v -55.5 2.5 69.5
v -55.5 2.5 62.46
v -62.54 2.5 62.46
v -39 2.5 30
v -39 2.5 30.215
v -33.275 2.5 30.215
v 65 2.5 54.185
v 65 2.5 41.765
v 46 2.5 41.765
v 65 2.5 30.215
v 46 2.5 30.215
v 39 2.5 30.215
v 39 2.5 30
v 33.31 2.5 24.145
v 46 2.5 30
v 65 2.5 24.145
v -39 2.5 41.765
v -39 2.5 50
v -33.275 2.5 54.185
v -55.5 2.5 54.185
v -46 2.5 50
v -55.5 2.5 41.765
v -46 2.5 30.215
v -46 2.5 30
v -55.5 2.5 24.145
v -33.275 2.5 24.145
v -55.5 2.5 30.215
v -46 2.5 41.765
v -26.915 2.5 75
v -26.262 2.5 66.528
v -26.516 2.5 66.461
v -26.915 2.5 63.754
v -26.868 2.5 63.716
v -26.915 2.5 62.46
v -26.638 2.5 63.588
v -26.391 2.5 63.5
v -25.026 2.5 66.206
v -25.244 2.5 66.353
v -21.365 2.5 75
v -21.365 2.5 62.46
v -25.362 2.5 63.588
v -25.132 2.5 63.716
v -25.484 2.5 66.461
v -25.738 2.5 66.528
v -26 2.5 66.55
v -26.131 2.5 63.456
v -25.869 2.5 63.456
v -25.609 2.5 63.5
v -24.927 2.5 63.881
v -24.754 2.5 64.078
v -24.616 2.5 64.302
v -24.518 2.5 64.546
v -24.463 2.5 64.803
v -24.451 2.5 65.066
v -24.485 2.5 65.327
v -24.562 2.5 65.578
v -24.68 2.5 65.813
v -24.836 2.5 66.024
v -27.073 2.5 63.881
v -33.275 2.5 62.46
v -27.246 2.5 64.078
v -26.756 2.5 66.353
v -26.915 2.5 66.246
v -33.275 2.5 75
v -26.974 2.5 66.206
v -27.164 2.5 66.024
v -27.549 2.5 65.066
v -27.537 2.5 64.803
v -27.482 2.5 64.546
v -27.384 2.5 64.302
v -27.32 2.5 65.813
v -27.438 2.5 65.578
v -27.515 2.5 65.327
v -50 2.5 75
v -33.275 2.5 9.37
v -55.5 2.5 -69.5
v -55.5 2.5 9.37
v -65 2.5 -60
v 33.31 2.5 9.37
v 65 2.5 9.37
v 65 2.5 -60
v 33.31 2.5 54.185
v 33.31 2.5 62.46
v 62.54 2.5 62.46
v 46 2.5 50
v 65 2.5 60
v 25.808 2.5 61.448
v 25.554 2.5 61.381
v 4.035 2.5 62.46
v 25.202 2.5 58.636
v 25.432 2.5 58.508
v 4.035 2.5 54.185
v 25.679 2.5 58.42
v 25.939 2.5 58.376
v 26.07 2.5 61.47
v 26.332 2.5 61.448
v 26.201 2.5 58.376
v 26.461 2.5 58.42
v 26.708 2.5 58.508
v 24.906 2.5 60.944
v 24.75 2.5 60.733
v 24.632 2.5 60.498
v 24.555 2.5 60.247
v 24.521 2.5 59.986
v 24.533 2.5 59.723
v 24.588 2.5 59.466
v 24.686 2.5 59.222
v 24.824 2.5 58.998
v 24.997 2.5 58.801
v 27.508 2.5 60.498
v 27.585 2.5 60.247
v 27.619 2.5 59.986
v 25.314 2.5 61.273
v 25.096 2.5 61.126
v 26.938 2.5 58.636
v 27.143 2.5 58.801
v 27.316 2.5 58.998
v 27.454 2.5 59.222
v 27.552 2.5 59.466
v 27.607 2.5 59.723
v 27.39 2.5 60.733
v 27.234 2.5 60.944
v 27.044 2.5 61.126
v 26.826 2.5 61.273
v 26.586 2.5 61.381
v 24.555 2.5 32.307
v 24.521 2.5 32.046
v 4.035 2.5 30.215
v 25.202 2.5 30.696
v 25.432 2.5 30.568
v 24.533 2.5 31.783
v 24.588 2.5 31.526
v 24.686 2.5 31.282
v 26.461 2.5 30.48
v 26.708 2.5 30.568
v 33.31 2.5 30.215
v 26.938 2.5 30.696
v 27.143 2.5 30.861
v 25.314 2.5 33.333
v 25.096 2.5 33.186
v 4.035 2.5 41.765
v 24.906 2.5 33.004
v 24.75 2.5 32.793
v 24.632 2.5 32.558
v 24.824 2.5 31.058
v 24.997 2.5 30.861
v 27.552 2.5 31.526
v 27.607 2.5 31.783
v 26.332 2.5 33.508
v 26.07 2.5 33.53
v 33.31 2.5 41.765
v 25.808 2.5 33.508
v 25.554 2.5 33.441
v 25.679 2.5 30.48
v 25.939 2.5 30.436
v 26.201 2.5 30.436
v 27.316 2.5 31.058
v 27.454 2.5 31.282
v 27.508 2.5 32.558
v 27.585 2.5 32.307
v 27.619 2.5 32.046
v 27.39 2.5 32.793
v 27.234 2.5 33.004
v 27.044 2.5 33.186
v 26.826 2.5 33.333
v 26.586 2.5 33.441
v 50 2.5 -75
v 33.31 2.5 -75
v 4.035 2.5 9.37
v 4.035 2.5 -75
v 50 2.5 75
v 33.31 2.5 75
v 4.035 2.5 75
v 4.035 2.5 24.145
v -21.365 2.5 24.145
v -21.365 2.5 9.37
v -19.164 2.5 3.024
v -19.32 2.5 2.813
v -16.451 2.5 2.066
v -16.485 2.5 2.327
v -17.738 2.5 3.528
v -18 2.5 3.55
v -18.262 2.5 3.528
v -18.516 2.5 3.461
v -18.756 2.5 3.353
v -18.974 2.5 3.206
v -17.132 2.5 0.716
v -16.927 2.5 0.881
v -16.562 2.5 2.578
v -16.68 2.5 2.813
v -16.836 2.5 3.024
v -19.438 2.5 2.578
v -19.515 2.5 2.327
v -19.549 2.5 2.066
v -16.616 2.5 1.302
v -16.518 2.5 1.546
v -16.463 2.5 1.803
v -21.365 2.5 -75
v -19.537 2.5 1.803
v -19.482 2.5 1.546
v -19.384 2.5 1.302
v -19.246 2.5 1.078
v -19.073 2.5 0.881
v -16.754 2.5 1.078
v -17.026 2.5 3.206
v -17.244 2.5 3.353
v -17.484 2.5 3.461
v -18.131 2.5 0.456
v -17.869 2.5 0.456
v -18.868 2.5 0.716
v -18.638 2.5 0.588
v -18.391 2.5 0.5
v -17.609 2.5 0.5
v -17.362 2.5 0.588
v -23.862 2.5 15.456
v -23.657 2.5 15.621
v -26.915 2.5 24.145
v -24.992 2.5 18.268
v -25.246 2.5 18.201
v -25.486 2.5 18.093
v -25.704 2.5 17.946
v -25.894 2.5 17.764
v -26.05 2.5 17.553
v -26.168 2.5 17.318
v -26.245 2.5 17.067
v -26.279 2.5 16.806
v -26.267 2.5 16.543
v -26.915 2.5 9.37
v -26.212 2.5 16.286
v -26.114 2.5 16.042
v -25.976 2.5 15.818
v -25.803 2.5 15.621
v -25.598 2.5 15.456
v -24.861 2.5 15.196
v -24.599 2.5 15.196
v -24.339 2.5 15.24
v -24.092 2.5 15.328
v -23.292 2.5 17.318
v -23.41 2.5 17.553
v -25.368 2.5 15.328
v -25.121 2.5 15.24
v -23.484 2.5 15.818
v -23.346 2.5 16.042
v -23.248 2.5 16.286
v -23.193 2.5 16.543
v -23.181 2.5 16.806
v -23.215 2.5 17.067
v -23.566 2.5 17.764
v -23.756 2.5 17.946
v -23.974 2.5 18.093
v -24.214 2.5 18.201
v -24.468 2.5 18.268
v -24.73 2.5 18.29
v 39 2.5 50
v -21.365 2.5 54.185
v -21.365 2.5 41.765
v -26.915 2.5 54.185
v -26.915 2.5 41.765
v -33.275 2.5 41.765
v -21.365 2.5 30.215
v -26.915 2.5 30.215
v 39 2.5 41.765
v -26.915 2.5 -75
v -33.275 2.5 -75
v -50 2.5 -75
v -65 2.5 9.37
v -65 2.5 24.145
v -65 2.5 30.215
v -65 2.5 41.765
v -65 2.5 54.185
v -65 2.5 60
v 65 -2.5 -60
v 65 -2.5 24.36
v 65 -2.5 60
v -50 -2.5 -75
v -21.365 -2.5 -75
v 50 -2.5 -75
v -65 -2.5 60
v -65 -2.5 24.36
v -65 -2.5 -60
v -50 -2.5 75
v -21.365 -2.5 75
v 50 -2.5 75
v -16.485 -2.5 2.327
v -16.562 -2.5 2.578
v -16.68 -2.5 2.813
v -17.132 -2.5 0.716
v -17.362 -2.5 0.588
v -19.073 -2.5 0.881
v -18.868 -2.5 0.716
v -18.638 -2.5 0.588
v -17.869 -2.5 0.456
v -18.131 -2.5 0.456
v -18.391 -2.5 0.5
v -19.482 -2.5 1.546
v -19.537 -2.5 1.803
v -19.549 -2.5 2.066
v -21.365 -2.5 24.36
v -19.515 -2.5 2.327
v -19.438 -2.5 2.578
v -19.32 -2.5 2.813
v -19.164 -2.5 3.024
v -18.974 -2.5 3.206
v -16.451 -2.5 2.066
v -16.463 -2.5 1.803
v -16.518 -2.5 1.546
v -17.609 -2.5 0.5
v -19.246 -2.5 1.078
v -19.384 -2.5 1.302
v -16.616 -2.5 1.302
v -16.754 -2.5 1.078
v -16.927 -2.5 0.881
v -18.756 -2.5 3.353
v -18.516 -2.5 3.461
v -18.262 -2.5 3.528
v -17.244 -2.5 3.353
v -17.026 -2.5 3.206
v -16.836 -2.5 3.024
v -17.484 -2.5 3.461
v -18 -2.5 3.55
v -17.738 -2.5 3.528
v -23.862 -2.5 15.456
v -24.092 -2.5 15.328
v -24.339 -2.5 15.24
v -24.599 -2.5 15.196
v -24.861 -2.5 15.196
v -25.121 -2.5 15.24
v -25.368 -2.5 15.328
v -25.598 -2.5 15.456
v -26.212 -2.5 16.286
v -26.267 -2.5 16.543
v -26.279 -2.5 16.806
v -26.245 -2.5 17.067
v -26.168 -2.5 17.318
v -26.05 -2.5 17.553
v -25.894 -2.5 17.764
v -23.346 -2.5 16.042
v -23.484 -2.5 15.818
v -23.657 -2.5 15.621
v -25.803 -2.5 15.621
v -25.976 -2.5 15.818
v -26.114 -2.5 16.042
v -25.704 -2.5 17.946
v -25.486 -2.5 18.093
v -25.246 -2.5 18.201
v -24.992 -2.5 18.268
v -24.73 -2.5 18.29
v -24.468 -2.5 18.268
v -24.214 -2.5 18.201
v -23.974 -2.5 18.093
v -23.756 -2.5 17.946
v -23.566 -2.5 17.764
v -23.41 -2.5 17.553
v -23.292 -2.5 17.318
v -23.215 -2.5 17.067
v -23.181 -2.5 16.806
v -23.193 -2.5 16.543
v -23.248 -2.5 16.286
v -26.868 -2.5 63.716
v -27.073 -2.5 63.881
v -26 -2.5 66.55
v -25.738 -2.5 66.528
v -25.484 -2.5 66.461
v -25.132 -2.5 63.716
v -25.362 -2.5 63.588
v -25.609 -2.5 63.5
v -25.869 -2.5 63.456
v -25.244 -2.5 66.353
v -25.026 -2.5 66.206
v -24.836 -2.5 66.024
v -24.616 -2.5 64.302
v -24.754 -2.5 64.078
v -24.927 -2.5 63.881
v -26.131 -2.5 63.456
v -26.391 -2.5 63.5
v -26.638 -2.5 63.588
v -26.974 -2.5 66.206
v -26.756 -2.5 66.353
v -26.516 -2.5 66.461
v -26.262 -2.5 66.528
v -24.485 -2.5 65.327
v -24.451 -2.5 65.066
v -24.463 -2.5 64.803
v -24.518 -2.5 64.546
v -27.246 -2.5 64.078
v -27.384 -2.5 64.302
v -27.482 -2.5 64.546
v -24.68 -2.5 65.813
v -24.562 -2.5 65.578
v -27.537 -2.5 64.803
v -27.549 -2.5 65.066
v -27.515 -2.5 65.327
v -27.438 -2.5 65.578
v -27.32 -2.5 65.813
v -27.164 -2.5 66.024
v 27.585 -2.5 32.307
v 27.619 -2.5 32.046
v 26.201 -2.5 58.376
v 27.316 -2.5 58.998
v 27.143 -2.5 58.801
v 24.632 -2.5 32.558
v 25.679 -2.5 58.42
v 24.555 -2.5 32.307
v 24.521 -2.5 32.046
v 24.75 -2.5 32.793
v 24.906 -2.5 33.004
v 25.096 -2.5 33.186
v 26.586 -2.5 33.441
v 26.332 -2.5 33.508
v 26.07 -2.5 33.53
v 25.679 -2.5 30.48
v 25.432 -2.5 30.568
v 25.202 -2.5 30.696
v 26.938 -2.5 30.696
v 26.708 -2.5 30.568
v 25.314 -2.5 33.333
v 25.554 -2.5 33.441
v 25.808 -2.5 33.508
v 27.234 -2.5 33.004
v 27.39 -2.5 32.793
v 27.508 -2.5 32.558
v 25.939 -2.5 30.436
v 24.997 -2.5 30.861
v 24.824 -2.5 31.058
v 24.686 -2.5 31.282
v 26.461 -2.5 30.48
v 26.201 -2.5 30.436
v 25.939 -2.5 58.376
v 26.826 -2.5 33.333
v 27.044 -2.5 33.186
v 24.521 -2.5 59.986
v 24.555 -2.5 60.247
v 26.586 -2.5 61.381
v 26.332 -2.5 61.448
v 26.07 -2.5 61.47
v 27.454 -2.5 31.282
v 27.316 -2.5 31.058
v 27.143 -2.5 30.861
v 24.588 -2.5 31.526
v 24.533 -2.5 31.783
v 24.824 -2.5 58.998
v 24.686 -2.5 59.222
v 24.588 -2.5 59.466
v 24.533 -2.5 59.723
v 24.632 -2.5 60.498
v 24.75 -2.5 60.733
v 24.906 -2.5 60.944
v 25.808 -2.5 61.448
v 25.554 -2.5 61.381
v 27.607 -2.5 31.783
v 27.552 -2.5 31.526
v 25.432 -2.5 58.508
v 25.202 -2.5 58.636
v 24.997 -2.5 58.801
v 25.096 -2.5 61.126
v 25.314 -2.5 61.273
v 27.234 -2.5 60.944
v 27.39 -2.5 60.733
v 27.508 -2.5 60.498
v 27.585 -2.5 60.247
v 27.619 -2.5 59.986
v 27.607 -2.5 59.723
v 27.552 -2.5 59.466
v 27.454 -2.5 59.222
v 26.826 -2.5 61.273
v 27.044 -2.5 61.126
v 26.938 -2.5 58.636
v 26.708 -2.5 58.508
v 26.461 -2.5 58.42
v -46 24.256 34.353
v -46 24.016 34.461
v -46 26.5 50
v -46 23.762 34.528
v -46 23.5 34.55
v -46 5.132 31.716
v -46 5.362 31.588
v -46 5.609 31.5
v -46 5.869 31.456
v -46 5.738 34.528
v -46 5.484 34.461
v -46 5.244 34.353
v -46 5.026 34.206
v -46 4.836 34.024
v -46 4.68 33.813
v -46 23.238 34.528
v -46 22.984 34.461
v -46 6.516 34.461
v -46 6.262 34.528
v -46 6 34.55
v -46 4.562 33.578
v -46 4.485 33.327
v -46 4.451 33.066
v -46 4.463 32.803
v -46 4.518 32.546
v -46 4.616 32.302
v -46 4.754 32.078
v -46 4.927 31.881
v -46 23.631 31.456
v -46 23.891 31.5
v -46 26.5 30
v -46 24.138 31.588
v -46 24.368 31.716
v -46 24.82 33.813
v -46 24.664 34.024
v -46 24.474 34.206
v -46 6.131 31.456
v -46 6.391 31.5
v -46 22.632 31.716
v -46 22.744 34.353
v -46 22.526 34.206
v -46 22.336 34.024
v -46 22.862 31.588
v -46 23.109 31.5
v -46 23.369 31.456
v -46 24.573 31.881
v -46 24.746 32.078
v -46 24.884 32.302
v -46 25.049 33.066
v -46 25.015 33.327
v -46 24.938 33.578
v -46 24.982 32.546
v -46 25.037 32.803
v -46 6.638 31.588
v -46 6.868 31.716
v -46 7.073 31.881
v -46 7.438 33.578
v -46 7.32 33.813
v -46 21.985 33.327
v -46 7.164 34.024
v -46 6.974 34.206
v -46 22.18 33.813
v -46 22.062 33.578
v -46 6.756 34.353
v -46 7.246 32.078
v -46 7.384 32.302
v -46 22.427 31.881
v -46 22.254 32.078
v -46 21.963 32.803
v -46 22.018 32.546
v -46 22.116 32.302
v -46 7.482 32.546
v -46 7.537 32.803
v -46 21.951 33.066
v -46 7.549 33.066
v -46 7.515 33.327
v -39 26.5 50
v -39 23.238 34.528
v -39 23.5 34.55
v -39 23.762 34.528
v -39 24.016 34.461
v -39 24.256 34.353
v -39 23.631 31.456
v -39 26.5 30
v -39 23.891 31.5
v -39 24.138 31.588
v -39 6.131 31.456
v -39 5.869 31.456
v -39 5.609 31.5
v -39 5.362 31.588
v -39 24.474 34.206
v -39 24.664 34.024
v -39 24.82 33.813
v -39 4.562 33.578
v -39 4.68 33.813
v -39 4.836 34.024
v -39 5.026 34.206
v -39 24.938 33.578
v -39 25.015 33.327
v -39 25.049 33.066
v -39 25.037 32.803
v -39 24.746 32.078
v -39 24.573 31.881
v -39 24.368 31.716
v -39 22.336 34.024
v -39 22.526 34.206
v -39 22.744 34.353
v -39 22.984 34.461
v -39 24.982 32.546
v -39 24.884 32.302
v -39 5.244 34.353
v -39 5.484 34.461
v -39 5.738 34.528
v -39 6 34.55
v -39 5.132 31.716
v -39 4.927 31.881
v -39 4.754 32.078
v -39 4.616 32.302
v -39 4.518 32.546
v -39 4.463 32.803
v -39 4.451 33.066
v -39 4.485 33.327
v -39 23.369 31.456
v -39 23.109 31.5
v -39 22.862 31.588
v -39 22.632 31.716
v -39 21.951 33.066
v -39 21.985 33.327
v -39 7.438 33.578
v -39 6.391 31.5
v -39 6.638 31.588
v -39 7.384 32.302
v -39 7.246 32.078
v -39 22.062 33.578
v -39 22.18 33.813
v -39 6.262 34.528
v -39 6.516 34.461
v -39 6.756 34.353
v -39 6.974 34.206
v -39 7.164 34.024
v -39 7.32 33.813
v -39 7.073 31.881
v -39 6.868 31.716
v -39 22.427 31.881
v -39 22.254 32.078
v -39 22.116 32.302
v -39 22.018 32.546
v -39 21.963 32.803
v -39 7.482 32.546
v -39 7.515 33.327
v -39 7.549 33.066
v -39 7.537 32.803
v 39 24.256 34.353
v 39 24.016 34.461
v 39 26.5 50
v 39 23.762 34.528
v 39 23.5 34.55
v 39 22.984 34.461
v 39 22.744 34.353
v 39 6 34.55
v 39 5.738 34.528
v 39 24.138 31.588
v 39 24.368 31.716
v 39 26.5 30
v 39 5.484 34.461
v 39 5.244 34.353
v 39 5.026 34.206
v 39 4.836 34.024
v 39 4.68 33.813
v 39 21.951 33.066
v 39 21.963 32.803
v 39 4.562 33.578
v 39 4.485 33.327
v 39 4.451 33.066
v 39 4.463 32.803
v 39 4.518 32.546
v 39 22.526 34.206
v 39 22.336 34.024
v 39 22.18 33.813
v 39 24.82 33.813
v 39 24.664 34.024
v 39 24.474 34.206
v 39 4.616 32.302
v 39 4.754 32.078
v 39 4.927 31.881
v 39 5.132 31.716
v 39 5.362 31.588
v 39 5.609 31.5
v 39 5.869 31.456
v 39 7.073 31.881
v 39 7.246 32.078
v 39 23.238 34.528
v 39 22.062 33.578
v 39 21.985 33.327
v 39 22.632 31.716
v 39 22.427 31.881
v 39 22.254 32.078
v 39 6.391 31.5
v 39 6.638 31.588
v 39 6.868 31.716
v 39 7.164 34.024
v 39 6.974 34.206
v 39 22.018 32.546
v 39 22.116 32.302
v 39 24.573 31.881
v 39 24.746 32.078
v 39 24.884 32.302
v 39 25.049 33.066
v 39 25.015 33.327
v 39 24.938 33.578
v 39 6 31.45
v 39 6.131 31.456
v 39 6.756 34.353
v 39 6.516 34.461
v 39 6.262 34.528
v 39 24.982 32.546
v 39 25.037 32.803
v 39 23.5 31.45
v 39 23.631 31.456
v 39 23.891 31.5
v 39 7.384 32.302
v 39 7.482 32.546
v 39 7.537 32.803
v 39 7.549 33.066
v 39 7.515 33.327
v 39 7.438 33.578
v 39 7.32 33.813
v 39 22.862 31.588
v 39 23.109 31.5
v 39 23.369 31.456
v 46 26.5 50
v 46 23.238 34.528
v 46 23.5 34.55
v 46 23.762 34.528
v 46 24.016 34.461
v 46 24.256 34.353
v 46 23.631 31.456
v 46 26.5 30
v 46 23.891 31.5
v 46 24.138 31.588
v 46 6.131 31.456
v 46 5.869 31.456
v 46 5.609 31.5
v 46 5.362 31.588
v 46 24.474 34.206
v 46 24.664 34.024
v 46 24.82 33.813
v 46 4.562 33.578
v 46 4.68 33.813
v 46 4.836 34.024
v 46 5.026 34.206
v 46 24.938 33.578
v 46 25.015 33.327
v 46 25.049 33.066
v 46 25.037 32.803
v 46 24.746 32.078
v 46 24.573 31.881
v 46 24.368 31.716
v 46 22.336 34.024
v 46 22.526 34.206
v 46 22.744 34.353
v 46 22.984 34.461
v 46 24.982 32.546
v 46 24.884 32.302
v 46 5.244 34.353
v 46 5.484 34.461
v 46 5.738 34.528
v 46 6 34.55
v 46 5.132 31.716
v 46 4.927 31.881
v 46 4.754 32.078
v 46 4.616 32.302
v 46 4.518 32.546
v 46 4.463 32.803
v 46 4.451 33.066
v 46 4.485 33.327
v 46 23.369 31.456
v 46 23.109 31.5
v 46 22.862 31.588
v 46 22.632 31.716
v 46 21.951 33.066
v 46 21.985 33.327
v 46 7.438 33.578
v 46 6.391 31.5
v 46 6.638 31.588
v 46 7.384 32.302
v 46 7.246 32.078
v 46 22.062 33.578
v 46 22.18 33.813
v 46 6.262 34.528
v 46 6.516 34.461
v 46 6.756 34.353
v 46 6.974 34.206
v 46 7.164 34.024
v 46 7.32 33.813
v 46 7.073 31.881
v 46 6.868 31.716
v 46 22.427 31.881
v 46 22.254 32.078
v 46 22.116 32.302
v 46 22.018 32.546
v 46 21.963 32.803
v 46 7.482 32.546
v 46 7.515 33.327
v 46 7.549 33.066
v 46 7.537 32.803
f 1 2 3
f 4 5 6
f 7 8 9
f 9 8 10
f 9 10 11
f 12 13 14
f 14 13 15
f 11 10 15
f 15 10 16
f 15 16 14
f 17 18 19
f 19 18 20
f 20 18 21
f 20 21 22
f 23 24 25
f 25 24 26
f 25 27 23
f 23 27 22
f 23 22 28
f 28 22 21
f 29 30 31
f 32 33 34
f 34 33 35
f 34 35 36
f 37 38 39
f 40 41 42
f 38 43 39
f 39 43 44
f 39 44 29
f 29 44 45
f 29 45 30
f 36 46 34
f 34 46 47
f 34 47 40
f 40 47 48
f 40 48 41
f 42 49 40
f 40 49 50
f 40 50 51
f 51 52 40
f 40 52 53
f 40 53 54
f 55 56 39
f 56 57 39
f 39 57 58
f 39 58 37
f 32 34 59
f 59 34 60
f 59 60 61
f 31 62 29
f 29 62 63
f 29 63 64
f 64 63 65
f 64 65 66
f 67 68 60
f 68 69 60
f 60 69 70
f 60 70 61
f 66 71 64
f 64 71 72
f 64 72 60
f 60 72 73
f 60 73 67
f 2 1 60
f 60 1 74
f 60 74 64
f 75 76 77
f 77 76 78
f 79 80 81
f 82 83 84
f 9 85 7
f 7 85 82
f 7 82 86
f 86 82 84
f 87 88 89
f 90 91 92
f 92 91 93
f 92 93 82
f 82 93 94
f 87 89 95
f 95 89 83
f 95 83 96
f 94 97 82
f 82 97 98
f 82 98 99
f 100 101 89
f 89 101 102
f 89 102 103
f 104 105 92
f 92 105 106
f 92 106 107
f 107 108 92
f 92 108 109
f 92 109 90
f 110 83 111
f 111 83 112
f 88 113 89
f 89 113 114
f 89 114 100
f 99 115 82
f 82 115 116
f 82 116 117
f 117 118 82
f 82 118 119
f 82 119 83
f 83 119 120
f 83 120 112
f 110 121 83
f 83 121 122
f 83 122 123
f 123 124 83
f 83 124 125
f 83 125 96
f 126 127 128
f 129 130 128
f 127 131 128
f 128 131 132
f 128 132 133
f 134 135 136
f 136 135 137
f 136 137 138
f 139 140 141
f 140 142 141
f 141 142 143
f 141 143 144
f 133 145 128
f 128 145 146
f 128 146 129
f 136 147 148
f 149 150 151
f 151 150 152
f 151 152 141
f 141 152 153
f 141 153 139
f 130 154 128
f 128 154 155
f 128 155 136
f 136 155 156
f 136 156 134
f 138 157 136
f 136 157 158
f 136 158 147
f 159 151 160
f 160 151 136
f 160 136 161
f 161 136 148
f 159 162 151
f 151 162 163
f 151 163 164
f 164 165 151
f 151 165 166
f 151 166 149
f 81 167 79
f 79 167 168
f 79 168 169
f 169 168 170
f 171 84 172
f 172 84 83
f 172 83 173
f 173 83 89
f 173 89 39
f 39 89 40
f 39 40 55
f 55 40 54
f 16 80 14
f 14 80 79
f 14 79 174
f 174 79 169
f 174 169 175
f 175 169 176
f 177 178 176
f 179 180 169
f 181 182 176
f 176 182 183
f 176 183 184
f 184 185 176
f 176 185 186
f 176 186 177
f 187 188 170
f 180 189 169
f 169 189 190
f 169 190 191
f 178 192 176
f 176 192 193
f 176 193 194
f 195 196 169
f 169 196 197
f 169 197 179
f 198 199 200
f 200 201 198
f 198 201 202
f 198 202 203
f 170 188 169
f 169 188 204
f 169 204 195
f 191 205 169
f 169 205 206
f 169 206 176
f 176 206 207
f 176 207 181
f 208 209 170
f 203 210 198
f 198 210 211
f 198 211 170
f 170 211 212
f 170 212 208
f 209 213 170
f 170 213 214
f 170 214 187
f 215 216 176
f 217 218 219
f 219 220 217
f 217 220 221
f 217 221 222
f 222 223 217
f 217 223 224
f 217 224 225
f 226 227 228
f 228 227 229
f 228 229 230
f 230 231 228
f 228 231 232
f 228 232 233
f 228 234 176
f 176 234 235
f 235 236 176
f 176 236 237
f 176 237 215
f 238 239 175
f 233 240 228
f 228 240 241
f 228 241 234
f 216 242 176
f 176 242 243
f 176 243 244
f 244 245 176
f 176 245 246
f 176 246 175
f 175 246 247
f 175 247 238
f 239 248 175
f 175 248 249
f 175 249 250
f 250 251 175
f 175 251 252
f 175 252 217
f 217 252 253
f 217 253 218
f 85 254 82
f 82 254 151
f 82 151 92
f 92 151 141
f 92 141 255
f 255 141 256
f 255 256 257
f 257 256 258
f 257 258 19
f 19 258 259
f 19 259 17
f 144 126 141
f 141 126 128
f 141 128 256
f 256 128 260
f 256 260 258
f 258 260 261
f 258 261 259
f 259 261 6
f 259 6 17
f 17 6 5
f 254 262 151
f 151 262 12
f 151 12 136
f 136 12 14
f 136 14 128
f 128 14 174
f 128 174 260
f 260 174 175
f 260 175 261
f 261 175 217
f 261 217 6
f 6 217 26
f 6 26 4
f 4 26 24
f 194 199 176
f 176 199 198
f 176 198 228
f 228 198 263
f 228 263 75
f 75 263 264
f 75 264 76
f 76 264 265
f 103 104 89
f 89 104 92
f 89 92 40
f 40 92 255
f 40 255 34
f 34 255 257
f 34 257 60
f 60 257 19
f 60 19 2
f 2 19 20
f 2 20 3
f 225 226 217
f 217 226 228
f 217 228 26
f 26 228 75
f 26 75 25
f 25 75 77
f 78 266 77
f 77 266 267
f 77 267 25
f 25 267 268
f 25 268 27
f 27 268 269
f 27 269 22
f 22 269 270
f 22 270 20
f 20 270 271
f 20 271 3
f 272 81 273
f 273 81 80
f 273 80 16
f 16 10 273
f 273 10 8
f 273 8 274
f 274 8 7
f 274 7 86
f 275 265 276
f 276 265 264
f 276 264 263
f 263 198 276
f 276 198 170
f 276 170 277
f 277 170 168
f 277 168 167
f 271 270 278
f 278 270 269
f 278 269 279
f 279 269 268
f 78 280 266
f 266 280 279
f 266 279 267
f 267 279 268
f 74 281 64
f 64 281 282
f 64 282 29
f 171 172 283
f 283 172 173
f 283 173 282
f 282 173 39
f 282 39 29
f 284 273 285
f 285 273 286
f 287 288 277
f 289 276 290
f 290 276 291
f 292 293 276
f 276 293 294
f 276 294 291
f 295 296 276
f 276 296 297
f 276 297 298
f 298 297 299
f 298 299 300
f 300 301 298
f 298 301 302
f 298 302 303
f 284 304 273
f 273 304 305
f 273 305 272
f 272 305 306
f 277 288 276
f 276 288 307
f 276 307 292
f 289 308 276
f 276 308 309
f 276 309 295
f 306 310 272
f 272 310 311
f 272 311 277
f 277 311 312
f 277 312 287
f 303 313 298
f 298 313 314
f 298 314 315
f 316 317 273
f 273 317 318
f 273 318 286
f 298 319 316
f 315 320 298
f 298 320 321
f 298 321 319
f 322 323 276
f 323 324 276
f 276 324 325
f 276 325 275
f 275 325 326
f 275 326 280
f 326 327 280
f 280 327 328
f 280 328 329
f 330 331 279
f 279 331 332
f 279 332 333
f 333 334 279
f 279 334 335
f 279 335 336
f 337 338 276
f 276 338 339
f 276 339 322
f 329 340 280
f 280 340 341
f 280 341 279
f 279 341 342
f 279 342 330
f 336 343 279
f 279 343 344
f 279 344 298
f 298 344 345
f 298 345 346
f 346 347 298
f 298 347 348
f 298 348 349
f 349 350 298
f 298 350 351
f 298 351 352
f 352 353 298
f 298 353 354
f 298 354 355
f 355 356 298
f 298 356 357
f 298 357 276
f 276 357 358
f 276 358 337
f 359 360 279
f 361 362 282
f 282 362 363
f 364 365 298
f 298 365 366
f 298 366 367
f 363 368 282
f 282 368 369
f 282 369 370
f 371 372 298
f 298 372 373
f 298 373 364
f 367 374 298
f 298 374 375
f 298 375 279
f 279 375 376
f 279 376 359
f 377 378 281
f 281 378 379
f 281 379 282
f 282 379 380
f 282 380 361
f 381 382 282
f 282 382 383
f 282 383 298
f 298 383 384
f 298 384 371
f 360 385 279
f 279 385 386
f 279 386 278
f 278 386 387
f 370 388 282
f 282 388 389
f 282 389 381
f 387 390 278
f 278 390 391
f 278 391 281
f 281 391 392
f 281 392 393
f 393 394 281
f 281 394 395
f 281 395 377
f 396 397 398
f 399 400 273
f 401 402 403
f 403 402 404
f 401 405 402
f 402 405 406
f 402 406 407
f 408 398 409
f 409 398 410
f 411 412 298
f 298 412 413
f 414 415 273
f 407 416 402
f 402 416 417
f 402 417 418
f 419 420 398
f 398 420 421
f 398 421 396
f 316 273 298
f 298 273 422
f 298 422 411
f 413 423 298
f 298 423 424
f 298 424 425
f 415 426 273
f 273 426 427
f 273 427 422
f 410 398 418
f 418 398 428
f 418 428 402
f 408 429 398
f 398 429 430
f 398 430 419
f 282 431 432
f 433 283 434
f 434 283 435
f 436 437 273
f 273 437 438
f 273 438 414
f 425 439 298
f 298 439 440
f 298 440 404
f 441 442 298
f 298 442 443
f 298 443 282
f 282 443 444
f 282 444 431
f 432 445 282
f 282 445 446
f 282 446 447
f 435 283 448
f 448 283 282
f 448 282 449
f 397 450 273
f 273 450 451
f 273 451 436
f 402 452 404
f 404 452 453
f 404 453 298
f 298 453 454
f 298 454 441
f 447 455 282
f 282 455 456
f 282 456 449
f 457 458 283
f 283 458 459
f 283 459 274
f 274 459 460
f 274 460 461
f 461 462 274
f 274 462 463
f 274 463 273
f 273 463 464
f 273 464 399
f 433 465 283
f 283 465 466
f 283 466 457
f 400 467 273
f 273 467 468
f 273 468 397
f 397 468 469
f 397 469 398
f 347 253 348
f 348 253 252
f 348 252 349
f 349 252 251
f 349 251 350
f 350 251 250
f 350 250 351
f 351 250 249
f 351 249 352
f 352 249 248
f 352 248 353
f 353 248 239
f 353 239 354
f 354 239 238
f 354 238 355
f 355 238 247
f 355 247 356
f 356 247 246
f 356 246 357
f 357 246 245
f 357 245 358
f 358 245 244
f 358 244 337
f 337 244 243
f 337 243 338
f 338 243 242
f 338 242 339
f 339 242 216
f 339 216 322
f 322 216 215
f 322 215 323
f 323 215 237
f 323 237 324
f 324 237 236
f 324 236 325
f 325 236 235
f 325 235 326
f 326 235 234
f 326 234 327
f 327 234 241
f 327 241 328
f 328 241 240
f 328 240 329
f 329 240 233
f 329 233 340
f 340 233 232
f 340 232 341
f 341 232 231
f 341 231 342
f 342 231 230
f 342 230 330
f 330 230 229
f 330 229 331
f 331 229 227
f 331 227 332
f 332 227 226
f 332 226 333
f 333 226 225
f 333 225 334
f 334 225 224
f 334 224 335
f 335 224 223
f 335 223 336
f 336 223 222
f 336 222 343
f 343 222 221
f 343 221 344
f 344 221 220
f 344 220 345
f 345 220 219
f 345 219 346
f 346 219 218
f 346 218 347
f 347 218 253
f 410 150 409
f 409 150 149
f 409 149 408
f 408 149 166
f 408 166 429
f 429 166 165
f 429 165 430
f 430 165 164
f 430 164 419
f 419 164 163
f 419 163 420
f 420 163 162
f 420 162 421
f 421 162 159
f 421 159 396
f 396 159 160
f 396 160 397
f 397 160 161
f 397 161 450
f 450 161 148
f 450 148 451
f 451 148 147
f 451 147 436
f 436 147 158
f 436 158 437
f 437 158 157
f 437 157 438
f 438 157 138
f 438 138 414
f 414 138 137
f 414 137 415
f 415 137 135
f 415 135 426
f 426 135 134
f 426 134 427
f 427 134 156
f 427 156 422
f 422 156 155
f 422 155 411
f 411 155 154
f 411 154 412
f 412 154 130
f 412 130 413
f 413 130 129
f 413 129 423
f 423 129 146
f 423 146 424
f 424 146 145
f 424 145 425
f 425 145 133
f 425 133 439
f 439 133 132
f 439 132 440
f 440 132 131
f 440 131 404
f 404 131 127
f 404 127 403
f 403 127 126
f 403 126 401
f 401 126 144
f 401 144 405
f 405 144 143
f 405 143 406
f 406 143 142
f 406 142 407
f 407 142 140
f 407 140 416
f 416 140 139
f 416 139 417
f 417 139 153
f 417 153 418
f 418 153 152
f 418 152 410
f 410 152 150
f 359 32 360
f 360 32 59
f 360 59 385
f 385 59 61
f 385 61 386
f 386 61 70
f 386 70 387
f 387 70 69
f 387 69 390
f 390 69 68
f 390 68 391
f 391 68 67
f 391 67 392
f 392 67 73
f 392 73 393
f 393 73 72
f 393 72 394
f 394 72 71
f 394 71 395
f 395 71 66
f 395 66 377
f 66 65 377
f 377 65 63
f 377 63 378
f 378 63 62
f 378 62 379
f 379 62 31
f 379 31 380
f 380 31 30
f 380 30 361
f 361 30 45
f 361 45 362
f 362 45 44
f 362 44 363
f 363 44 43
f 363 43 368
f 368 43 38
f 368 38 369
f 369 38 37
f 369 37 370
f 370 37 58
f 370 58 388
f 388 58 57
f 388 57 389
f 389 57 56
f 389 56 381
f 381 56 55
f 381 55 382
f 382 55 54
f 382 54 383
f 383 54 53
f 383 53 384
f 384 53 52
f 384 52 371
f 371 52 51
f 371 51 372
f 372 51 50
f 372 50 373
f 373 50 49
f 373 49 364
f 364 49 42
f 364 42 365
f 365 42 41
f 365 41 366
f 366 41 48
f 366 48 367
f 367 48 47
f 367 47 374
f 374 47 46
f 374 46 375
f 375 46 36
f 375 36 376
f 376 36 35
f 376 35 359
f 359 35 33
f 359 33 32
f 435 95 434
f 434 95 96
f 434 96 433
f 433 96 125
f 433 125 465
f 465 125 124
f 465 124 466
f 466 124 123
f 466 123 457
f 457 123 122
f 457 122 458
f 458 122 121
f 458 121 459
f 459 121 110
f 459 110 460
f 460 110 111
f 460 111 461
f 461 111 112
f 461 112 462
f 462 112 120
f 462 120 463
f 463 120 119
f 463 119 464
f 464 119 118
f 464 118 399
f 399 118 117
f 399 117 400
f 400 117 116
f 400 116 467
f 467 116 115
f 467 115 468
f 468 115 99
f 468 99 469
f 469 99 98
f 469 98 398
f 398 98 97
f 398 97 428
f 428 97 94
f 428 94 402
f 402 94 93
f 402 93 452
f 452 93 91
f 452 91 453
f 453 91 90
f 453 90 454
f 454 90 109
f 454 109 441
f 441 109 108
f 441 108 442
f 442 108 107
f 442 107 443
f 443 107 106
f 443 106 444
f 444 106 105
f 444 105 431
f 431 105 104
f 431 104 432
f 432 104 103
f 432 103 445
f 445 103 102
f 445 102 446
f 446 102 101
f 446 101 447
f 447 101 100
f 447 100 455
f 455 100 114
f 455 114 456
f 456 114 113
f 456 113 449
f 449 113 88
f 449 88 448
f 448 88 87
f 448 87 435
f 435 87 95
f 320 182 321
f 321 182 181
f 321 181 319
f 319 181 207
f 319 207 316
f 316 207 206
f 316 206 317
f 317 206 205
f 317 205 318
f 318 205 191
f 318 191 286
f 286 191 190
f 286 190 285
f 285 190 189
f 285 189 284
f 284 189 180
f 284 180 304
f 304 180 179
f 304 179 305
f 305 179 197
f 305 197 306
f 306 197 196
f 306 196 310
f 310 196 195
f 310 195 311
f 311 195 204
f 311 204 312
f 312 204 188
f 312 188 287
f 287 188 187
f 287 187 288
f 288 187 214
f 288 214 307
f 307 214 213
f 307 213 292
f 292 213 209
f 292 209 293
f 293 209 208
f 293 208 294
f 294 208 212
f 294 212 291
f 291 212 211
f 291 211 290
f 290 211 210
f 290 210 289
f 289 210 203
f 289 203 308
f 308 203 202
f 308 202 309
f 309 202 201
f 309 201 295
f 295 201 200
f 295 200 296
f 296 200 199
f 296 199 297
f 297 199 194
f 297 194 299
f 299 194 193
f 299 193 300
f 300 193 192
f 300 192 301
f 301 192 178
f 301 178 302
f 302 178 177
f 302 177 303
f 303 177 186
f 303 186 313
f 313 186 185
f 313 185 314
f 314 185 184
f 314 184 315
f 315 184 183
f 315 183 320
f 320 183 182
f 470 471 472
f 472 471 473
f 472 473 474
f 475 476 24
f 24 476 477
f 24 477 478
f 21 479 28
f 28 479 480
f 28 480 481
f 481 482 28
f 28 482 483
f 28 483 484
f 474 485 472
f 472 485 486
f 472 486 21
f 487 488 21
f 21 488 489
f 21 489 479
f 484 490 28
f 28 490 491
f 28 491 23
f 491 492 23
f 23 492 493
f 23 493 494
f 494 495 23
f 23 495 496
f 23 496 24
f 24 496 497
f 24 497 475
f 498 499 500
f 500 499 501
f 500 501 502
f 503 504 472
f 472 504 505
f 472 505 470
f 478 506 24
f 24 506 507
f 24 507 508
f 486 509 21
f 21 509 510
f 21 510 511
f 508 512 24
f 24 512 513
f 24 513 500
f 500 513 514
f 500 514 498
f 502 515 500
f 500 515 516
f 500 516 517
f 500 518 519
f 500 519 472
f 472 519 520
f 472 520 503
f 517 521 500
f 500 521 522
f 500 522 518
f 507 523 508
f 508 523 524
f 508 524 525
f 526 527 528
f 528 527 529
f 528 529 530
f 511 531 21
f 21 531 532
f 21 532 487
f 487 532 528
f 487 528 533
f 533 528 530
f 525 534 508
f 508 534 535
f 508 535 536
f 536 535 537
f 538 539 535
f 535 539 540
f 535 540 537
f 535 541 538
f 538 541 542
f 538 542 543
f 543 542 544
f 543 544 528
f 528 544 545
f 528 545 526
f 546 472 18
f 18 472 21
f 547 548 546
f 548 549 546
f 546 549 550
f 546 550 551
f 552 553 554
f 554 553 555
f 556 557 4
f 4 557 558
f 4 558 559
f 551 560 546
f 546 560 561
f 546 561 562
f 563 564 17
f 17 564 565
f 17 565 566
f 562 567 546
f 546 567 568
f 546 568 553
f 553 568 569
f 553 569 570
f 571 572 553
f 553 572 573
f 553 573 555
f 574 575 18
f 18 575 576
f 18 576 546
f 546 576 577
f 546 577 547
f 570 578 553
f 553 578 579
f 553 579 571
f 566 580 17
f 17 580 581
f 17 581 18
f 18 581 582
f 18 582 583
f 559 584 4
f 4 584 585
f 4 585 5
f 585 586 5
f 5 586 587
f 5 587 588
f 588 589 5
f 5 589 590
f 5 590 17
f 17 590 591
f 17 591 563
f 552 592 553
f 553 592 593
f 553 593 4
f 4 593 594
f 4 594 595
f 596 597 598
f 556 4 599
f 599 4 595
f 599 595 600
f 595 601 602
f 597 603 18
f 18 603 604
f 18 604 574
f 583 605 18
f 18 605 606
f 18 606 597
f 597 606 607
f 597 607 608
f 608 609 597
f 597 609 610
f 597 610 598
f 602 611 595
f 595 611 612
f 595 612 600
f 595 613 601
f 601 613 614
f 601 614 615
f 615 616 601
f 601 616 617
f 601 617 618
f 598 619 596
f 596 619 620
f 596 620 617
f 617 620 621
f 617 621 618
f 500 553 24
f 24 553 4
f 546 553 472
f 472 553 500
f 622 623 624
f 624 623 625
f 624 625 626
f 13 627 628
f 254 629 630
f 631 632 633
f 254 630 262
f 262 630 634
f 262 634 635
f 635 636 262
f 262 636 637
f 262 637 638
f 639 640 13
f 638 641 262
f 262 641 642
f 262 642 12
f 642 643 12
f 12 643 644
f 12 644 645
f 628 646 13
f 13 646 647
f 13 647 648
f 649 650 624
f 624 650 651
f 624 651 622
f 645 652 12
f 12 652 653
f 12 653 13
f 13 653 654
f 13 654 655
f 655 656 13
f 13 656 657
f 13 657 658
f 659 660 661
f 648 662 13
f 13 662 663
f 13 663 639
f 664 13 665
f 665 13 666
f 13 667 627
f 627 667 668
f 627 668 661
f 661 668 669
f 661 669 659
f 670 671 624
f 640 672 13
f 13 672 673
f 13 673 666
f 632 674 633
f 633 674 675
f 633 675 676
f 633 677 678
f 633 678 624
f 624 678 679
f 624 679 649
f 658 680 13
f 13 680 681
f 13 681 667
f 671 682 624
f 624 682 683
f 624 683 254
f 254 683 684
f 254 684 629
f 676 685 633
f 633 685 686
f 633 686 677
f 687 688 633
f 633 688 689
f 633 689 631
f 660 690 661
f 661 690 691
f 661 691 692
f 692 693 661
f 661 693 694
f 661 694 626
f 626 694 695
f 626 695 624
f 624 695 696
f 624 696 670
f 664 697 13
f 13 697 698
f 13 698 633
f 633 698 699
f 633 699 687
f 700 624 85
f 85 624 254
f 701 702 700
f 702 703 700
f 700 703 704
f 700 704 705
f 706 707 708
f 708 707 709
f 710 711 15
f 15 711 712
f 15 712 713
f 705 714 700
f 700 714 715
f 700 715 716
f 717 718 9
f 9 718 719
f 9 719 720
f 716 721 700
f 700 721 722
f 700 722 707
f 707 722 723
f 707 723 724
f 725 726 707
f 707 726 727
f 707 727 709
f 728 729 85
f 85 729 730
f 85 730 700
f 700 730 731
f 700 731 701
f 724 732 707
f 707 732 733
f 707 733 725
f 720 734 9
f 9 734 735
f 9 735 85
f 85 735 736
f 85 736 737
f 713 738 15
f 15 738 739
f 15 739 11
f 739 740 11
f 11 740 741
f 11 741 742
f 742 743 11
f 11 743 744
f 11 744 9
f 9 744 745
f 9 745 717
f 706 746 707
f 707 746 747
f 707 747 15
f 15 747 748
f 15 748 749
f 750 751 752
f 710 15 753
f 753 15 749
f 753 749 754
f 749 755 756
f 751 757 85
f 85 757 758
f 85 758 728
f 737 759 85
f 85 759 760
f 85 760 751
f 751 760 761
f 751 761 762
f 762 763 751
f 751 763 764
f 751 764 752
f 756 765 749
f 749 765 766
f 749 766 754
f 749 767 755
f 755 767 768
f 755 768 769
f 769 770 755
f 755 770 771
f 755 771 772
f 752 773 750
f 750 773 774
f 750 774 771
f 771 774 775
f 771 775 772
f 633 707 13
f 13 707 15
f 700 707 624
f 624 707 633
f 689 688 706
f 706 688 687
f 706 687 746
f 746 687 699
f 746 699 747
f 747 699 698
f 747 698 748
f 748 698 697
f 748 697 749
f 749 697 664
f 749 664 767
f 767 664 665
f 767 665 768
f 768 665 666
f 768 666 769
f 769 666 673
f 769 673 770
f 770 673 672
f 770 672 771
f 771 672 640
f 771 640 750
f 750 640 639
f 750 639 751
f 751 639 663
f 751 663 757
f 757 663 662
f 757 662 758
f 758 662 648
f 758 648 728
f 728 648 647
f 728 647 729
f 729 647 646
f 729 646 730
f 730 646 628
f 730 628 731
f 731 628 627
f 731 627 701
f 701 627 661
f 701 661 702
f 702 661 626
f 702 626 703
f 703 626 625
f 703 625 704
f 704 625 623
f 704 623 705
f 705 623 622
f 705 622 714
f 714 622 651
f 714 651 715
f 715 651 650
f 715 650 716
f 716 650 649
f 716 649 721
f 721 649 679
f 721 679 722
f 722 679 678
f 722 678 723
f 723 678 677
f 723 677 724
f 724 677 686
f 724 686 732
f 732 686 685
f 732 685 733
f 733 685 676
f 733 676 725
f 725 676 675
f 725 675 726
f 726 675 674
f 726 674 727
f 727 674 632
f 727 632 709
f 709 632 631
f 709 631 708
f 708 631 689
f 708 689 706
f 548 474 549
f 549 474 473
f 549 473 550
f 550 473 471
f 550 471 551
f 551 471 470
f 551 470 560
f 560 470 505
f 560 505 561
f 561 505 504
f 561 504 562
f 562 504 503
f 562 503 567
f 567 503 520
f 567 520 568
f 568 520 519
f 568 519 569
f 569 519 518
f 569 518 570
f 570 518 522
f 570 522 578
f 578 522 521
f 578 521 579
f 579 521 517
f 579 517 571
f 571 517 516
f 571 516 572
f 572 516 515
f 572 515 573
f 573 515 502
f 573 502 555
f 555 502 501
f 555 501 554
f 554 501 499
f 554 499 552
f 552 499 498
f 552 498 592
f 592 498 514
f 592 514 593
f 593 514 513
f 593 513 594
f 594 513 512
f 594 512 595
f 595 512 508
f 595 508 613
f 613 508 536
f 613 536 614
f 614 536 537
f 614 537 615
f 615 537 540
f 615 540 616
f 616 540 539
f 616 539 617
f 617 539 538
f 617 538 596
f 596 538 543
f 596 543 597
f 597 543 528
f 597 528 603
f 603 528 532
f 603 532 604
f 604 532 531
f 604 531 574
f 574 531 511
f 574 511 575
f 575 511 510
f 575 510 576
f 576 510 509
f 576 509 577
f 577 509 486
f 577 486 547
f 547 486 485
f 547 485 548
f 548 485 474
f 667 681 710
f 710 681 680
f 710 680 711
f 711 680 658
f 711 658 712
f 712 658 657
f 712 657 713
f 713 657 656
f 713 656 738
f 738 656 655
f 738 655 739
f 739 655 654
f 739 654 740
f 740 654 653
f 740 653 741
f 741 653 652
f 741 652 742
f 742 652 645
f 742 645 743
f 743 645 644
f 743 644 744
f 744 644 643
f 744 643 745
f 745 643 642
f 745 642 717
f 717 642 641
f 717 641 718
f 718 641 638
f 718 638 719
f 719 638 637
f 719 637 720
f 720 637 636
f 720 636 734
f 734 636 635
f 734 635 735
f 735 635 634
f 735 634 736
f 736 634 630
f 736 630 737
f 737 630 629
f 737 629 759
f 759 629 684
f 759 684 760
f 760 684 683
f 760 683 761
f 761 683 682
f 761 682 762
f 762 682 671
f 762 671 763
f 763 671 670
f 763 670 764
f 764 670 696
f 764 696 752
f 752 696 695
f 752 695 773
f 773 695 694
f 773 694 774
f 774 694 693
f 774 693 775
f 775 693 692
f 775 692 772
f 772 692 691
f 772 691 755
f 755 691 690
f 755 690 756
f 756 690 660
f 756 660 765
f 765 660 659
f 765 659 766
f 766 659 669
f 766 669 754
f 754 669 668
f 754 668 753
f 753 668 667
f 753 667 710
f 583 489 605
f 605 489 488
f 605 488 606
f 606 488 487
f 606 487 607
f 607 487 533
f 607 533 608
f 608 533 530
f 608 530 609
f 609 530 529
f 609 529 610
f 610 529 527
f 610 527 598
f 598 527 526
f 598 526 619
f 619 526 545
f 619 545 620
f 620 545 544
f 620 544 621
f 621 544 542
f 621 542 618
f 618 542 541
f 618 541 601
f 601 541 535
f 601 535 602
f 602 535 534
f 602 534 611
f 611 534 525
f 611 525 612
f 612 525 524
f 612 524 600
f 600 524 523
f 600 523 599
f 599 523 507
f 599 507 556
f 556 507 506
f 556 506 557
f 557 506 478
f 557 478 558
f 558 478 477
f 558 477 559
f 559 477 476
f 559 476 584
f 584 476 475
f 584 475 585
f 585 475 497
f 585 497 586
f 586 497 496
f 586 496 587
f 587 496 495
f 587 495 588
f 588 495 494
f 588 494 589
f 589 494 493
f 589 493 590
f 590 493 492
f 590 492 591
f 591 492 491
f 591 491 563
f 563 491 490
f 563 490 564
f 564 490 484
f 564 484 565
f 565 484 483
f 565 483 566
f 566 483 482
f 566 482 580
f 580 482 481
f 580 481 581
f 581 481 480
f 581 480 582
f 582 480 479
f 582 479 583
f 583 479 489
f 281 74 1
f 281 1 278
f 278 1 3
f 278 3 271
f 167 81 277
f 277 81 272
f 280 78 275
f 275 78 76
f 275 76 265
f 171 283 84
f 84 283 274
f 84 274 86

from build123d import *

# Parameters (mm, degrees)
SKETCH1_W           = 130
SKETCH1_H           = 150
BOSS_EXTRUDE1_DEPTH = 2.5
SKETCH4_R           = 1.55
CUT_EXTRUDE2_DEPTH  = 5
SKETCH5_W           = 7
SKETCH5_H           = 20
BOSS_EXTRUDE3_DEPTH = 24
CUT_EXTRUDE3_REACH  = 138.559
SKETCH6_R           = 1.55
CUT_EXTRUDE4_DEPTH  = 5


with BuildPart() as part:
    # Sketch1 → Boss-Extrude1 (new, symmetric)
    with BuildSketch(Plane(origin=(0, 0, 0), x_dir=(1, 0, 0), z_dir=(0, 1, 0))):
        Rectangle(SKETCH1_W, SKETCH1_H)
    extrude(amount=BOSS_EXTRUDE1_DEPTH, both=True)

    # Sketch4 → Cut-Extrude2 (cut)
    with BuildSketch(Plane(origin=(0, 2.5, 0), x_dir=(1, 0, 0), z_dir=(0, 1, 0))):
        with Locations(Location((-24.73, -16.74, 0), (0, 0, 270))):
            Circle(SKETCH4_R)
        with Locations(Location((26.07, -31.98, 0), (0, 0, 270))):
            Circle(SKETCH4_R)
        with Locations(Location((-26, -65, 0), (0, 0, 270))):
            Circle(SKETCH4_R)
        with Locations(Location((26.07, -59.92, 0), (0, 0, 270))):
            Circle(SKETCH4_R)
        with Locations(Location((-18, -2, 0), (0, 0, 270))):
            Circle(SKETCH4_R)
    extrude(amount=-CUT_EXTRUDE2_DEPTH, mode=Mode.SUBTRACT)

    # Sketch5 → Boss-Extrude3 (add)
    with BuildSketch(Plane(origin=(0, 2.5, 0), x_dir=(1, 0, 0), z_dir=(0, 1, 0))):
        with Locations((-42.5, -40)):
            Rectangle(SKETCH5_W, SKETCH5_H)
        with Locations((42.5, -40)):
            Rectangle(SKETCH5_W, SKETCH5_H)
    extrude(amount=BOSS_EXTRUDE3_DEPTH)

    # Cut-Extrude3: up to this face of the body (flat: up to its plane)
    cut_extrude3_end = Plane(part.part.faces().sort_by_distance((46, 14.5, 40))[0])
    # Sketch6 → Cut-Extrude3 (cut, up to the picked face)
    with BuildSketch(Plane.ZY.offset(46), mode=Mode.PRIVATE) as cut_extrude3_sk1:
        with Locations((33, 23.5)):
            Circle(SKETCH6_R)
    cut_extrude3_tool1 = split(extrude(cut_extrude3_sk1.sketch, amount=-CUT_EXTRUDE3_REACH, mode=Mode.PRIVATE), bisect_by=cut_extrude3_end, keep=Keep.BOTH, mode=Mode.PRIVATE)
    # Sketch6 → Cut-Extrude3 (cut, up to the picked face)
    with BuildSketch(Plane.ZY.offset(46), mode=Mode.PRIVATE) as cut_extrude3_sk2:
        with Locations((33, 6)):
            Circle(SKETCH6_R)
    cut_extrude3_tool2 = split(extrude(cut_extrude3_sk2.sketch, amount=-CUT_EXTRUDE3_REACH, mode=Mode.PRIVATE), bisect_by=cut_extrude3_end, keep=Keep.BOTH, mode=Mode.PRIVATE)
    add(cut_extrude3_tool1.solids().sort_by(Axis((-46, 23.5, 33), (1, 0, 0)))[0], mode=Mode.SUBTRACT)
    add(cut_extrude3_tool2.solids().sort_by(Axis((-46, 6, 33), (1, 0, 0)))[0], mode=Mode.SUBTRACT)

    # Sketch7 → Cut-Extrude4 (cut)
    with BuildSketch(Plane(origin=(0, 2.5, 0), x_dir=(1, 0, 0), z_dir=(0, 1, 0))):
        Polygon((-65, -75), (-65, -60), (-50, -75), align=None)
        Polygon((65, -75), (65, -60), (50, -75), align=None)
        Polygon((-65, 75), (-65, 60), (-50, 75), align=None)
        Polygon((65, 75), (65, 60), (50, 75), align=None)
    extrude(amount=-CUT_EXTRUDE4_DEPTH, mode=Mode.SUBTRACT)


solid = part.part
